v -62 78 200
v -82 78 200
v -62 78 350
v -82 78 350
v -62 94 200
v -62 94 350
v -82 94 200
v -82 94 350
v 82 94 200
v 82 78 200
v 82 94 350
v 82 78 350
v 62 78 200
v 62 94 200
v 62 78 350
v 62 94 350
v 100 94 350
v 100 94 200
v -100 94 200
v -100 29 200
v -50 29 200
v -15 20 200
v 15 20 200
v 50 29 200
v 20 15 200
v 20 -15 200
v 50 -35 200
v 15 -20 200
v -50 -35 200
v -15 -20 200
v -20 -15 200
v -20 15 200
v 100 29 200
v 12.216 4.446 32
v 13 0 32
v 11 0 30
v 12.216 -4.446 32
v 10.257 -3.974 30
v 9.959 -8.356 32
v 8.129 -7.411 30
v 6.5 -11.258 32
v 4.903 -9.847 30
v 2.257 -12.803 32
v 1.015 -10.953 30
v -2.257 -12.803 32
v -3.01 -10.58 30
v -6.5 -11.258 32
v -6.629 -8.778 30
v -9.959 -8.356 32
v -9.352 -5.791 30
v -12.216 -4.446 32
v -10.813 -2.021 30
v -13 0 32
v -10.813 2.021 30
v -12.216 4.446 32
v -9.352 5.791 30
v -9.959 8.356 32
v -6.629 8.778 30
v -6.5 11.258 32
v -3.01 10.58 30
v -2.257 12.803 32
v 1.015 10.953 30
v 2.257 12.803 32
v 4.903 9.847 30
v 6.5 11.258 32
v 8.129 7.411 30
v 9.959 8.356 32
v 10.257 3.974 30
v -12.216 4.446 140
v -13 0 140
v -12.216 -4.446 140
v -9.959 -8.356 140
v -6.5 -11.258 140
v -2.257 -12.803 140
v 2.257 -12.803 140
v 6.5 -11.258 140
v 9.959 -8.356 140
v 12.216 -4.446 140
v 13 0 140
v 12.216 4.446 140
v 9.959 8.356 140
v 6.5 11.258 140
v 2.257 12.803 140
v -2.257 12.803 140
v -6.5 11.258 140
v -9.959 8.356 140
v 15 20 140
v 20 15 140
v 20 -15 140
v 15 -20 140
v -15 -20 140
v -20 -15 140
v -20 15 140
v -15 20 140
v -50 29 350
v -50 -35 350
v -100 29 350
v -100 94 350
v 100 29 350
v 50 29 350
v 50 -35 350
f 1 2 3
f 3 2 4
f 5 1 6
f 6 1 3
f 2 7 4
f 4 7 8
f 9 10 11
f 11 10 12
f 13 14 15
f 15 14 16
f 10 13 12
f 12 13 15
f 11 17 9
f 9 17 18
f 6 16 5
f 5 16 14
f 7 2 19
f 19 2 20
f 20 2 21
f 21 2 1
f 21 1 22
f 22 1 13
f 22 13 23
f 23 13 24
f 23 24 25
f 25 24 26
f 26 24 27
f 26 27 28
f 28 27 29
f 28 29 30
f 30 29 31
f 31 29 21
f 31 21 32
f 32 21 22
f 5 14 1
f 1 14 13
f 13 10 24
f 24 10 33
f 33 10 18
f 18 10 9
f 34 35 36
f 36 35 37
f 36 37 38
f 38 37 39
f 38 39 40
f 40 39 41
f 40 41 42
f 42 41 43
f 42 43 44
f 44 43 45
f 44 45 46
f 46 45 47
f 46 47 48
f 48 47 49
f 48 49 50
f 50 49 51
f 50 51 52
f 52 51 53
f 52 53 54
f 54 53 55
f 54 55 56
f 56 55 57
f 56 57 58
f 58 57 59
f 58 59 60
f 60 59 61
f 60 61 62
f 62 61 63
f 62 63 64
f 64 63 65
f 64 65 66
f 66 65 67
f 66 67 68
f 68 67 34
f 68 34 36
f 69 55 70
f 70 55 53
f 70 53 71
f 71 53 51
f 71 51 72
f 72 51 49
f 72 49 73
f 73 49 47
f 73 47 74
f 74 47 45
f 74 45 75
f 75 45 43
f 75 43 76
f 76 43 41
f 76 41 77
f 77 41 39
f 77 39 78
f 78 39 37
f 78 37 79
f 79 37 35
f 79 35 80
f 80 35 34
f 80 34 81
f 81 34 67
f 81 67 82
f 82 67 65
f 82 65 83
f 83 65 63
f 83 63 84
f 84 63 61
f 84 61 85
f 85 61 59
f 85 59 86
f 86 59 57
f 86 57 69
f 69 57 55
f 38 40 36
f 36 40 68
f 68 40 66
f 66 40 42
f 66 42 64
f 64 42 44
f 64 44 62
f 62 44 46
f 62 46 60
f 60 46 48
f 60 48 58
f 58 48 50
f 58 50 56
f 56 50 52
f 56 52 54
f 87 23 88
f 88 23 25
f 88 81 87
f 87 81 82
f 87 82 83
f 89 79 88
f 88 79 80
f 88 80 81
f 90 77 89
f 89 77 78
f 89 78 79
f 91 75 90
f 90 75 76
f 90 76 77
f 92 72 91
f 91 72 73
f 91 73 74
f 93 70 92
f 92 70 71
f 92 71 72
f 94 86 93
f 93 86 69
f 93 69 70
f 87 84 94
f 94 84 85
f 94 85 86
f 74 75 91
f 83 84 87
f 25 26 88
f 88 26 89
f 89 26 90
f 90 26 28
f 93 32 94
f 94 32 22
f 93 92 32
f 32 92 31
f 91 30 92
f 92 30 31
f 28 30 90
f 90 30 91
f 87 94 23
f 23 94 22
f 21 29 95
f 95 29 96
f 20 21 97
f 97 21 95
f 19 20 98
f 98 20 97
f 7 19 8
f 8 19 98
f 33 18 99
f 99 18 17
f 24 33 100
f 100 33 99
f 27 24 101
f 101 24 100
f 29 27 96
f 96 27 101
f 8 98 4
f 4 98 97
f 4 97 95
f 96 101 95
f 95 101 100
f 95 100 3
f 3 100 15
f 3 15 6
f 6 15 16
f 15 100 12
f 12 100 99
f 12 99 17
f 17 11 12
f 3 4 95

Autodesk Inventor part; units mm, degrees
ref_plane "YZ Plane" through (0, 0, 0) normal (1, 0, 0) x (0, 1, 0)
ref_plane "XZ Plane" through (0, 0, 0) normal (0, 1, 0) x (-1, 0, 0)
ref_plane "Work Plane1" through (0, 0, 200) normal (0, 0, 1) x (1, 0, 0)
sketch "Sketch1" plane through (0, 0, 200) normal (0, 0, 1) x (1, 0, 0)
  line L0 (0, 8.259) -> (0, -5.5938)
  line L1 (-6.2911, 0) -> (6.8799, 0)
  line L2 (0, 94) -> (-100, 94)
  line L3 (-100, 94) -> (-100, 29)
  line L4 (-100, 29) -> (-50, 29)
  line L5 (-50, 29) -> (-50, -35)
  line L6 (-50, -35) -> (0, -35)
  line L7 (0, 94) -> (100, 94)
  line L8 (100, 94) -> (100, 29)
  line L9 (100, 29) -> (50, 29)
  line L10 (50, 29) -> (50, -35)
  line L11 (50, -35) -> (0, -35)
  point P0 (0, 0)
  dimension "d1" = 100
  dimension "d2" = 188
  dimension "d3" = 65
  dimension "d5" = 50
  dimension "d21" = 64
extrude "Extrusion1" add sketch "Sketch1" along normal blind 150
sketch "Sketch2" plane through (0, 0, 200) normal (0, 0, 1) x (1, 0, 0)
  circle A0 centre (0, 0) radius 13
  dimension "d8" = 26
extrude "Extrusion2" add sketch "Sketch2" against normal blind 170
sketch "Sketch3" plane through (0, 0, 200) normal (0, 0, -1) x (-1, 0, 0)
  line L0 (20, -20) -> (-20, -20)
  line L1 (-20, -20) -> (-20, 20)
  line L2 (-20, 20) -> (20, 20)
  line L3 (20, 20) -> (20, -20)
  line L4 (0, -60.8) -> (0, 119.8) projected
  line L5 (140, 0) -> (-140, 0) projected
  point P0 (0, 0)
  dimension "d11" = 40
  dimension "d12" = 40
extrude "Extrusion3" add sketch "Sketch3" along normal blind 60
chamfer "Chamfer1" distance 5 angle 45 4 edges at (-20, -20, 170) (-20, 20, 170) (20, -20, 170) (20, 20, 170)
chamfer "Chamfer2" distance 2 angle 45 1 edges at (-13, 0, 30)
sketch "Sketch4" plane through (0, 0, 350) normal (0, 0, 1) x (1, 0, 0)
  line L0 (0, -53.3893) -> (0, 113.7531)
  line L1 (100, 94) -> (-100, 94) projected
  line L2 (82, 94) -> (62, 94)
  line L3 (62, 94) -> (62, 78)
  line L4 (62, 78) -> (82, 78)
  line L5 (82, 78) -> (82, 94)
  line L6 (100, 29) -> (100, 94) projected
  line L7 (-82, 94) -> (-62, 94)
  line L8 (-62, 94) -> (-62, 78)
  line L9 (-62, 78) -> (-82, 78)
  line L10 (-82, 78) -> (-82, 94)
  point P0 (0, 0)
  dimension "d22" = 20
  dimension "d23" = 16
  dimension "d24" = 18
extrude "Extrusion4" cut sketch "Sketch4" against normal through all
properties part number "Z_axis"
